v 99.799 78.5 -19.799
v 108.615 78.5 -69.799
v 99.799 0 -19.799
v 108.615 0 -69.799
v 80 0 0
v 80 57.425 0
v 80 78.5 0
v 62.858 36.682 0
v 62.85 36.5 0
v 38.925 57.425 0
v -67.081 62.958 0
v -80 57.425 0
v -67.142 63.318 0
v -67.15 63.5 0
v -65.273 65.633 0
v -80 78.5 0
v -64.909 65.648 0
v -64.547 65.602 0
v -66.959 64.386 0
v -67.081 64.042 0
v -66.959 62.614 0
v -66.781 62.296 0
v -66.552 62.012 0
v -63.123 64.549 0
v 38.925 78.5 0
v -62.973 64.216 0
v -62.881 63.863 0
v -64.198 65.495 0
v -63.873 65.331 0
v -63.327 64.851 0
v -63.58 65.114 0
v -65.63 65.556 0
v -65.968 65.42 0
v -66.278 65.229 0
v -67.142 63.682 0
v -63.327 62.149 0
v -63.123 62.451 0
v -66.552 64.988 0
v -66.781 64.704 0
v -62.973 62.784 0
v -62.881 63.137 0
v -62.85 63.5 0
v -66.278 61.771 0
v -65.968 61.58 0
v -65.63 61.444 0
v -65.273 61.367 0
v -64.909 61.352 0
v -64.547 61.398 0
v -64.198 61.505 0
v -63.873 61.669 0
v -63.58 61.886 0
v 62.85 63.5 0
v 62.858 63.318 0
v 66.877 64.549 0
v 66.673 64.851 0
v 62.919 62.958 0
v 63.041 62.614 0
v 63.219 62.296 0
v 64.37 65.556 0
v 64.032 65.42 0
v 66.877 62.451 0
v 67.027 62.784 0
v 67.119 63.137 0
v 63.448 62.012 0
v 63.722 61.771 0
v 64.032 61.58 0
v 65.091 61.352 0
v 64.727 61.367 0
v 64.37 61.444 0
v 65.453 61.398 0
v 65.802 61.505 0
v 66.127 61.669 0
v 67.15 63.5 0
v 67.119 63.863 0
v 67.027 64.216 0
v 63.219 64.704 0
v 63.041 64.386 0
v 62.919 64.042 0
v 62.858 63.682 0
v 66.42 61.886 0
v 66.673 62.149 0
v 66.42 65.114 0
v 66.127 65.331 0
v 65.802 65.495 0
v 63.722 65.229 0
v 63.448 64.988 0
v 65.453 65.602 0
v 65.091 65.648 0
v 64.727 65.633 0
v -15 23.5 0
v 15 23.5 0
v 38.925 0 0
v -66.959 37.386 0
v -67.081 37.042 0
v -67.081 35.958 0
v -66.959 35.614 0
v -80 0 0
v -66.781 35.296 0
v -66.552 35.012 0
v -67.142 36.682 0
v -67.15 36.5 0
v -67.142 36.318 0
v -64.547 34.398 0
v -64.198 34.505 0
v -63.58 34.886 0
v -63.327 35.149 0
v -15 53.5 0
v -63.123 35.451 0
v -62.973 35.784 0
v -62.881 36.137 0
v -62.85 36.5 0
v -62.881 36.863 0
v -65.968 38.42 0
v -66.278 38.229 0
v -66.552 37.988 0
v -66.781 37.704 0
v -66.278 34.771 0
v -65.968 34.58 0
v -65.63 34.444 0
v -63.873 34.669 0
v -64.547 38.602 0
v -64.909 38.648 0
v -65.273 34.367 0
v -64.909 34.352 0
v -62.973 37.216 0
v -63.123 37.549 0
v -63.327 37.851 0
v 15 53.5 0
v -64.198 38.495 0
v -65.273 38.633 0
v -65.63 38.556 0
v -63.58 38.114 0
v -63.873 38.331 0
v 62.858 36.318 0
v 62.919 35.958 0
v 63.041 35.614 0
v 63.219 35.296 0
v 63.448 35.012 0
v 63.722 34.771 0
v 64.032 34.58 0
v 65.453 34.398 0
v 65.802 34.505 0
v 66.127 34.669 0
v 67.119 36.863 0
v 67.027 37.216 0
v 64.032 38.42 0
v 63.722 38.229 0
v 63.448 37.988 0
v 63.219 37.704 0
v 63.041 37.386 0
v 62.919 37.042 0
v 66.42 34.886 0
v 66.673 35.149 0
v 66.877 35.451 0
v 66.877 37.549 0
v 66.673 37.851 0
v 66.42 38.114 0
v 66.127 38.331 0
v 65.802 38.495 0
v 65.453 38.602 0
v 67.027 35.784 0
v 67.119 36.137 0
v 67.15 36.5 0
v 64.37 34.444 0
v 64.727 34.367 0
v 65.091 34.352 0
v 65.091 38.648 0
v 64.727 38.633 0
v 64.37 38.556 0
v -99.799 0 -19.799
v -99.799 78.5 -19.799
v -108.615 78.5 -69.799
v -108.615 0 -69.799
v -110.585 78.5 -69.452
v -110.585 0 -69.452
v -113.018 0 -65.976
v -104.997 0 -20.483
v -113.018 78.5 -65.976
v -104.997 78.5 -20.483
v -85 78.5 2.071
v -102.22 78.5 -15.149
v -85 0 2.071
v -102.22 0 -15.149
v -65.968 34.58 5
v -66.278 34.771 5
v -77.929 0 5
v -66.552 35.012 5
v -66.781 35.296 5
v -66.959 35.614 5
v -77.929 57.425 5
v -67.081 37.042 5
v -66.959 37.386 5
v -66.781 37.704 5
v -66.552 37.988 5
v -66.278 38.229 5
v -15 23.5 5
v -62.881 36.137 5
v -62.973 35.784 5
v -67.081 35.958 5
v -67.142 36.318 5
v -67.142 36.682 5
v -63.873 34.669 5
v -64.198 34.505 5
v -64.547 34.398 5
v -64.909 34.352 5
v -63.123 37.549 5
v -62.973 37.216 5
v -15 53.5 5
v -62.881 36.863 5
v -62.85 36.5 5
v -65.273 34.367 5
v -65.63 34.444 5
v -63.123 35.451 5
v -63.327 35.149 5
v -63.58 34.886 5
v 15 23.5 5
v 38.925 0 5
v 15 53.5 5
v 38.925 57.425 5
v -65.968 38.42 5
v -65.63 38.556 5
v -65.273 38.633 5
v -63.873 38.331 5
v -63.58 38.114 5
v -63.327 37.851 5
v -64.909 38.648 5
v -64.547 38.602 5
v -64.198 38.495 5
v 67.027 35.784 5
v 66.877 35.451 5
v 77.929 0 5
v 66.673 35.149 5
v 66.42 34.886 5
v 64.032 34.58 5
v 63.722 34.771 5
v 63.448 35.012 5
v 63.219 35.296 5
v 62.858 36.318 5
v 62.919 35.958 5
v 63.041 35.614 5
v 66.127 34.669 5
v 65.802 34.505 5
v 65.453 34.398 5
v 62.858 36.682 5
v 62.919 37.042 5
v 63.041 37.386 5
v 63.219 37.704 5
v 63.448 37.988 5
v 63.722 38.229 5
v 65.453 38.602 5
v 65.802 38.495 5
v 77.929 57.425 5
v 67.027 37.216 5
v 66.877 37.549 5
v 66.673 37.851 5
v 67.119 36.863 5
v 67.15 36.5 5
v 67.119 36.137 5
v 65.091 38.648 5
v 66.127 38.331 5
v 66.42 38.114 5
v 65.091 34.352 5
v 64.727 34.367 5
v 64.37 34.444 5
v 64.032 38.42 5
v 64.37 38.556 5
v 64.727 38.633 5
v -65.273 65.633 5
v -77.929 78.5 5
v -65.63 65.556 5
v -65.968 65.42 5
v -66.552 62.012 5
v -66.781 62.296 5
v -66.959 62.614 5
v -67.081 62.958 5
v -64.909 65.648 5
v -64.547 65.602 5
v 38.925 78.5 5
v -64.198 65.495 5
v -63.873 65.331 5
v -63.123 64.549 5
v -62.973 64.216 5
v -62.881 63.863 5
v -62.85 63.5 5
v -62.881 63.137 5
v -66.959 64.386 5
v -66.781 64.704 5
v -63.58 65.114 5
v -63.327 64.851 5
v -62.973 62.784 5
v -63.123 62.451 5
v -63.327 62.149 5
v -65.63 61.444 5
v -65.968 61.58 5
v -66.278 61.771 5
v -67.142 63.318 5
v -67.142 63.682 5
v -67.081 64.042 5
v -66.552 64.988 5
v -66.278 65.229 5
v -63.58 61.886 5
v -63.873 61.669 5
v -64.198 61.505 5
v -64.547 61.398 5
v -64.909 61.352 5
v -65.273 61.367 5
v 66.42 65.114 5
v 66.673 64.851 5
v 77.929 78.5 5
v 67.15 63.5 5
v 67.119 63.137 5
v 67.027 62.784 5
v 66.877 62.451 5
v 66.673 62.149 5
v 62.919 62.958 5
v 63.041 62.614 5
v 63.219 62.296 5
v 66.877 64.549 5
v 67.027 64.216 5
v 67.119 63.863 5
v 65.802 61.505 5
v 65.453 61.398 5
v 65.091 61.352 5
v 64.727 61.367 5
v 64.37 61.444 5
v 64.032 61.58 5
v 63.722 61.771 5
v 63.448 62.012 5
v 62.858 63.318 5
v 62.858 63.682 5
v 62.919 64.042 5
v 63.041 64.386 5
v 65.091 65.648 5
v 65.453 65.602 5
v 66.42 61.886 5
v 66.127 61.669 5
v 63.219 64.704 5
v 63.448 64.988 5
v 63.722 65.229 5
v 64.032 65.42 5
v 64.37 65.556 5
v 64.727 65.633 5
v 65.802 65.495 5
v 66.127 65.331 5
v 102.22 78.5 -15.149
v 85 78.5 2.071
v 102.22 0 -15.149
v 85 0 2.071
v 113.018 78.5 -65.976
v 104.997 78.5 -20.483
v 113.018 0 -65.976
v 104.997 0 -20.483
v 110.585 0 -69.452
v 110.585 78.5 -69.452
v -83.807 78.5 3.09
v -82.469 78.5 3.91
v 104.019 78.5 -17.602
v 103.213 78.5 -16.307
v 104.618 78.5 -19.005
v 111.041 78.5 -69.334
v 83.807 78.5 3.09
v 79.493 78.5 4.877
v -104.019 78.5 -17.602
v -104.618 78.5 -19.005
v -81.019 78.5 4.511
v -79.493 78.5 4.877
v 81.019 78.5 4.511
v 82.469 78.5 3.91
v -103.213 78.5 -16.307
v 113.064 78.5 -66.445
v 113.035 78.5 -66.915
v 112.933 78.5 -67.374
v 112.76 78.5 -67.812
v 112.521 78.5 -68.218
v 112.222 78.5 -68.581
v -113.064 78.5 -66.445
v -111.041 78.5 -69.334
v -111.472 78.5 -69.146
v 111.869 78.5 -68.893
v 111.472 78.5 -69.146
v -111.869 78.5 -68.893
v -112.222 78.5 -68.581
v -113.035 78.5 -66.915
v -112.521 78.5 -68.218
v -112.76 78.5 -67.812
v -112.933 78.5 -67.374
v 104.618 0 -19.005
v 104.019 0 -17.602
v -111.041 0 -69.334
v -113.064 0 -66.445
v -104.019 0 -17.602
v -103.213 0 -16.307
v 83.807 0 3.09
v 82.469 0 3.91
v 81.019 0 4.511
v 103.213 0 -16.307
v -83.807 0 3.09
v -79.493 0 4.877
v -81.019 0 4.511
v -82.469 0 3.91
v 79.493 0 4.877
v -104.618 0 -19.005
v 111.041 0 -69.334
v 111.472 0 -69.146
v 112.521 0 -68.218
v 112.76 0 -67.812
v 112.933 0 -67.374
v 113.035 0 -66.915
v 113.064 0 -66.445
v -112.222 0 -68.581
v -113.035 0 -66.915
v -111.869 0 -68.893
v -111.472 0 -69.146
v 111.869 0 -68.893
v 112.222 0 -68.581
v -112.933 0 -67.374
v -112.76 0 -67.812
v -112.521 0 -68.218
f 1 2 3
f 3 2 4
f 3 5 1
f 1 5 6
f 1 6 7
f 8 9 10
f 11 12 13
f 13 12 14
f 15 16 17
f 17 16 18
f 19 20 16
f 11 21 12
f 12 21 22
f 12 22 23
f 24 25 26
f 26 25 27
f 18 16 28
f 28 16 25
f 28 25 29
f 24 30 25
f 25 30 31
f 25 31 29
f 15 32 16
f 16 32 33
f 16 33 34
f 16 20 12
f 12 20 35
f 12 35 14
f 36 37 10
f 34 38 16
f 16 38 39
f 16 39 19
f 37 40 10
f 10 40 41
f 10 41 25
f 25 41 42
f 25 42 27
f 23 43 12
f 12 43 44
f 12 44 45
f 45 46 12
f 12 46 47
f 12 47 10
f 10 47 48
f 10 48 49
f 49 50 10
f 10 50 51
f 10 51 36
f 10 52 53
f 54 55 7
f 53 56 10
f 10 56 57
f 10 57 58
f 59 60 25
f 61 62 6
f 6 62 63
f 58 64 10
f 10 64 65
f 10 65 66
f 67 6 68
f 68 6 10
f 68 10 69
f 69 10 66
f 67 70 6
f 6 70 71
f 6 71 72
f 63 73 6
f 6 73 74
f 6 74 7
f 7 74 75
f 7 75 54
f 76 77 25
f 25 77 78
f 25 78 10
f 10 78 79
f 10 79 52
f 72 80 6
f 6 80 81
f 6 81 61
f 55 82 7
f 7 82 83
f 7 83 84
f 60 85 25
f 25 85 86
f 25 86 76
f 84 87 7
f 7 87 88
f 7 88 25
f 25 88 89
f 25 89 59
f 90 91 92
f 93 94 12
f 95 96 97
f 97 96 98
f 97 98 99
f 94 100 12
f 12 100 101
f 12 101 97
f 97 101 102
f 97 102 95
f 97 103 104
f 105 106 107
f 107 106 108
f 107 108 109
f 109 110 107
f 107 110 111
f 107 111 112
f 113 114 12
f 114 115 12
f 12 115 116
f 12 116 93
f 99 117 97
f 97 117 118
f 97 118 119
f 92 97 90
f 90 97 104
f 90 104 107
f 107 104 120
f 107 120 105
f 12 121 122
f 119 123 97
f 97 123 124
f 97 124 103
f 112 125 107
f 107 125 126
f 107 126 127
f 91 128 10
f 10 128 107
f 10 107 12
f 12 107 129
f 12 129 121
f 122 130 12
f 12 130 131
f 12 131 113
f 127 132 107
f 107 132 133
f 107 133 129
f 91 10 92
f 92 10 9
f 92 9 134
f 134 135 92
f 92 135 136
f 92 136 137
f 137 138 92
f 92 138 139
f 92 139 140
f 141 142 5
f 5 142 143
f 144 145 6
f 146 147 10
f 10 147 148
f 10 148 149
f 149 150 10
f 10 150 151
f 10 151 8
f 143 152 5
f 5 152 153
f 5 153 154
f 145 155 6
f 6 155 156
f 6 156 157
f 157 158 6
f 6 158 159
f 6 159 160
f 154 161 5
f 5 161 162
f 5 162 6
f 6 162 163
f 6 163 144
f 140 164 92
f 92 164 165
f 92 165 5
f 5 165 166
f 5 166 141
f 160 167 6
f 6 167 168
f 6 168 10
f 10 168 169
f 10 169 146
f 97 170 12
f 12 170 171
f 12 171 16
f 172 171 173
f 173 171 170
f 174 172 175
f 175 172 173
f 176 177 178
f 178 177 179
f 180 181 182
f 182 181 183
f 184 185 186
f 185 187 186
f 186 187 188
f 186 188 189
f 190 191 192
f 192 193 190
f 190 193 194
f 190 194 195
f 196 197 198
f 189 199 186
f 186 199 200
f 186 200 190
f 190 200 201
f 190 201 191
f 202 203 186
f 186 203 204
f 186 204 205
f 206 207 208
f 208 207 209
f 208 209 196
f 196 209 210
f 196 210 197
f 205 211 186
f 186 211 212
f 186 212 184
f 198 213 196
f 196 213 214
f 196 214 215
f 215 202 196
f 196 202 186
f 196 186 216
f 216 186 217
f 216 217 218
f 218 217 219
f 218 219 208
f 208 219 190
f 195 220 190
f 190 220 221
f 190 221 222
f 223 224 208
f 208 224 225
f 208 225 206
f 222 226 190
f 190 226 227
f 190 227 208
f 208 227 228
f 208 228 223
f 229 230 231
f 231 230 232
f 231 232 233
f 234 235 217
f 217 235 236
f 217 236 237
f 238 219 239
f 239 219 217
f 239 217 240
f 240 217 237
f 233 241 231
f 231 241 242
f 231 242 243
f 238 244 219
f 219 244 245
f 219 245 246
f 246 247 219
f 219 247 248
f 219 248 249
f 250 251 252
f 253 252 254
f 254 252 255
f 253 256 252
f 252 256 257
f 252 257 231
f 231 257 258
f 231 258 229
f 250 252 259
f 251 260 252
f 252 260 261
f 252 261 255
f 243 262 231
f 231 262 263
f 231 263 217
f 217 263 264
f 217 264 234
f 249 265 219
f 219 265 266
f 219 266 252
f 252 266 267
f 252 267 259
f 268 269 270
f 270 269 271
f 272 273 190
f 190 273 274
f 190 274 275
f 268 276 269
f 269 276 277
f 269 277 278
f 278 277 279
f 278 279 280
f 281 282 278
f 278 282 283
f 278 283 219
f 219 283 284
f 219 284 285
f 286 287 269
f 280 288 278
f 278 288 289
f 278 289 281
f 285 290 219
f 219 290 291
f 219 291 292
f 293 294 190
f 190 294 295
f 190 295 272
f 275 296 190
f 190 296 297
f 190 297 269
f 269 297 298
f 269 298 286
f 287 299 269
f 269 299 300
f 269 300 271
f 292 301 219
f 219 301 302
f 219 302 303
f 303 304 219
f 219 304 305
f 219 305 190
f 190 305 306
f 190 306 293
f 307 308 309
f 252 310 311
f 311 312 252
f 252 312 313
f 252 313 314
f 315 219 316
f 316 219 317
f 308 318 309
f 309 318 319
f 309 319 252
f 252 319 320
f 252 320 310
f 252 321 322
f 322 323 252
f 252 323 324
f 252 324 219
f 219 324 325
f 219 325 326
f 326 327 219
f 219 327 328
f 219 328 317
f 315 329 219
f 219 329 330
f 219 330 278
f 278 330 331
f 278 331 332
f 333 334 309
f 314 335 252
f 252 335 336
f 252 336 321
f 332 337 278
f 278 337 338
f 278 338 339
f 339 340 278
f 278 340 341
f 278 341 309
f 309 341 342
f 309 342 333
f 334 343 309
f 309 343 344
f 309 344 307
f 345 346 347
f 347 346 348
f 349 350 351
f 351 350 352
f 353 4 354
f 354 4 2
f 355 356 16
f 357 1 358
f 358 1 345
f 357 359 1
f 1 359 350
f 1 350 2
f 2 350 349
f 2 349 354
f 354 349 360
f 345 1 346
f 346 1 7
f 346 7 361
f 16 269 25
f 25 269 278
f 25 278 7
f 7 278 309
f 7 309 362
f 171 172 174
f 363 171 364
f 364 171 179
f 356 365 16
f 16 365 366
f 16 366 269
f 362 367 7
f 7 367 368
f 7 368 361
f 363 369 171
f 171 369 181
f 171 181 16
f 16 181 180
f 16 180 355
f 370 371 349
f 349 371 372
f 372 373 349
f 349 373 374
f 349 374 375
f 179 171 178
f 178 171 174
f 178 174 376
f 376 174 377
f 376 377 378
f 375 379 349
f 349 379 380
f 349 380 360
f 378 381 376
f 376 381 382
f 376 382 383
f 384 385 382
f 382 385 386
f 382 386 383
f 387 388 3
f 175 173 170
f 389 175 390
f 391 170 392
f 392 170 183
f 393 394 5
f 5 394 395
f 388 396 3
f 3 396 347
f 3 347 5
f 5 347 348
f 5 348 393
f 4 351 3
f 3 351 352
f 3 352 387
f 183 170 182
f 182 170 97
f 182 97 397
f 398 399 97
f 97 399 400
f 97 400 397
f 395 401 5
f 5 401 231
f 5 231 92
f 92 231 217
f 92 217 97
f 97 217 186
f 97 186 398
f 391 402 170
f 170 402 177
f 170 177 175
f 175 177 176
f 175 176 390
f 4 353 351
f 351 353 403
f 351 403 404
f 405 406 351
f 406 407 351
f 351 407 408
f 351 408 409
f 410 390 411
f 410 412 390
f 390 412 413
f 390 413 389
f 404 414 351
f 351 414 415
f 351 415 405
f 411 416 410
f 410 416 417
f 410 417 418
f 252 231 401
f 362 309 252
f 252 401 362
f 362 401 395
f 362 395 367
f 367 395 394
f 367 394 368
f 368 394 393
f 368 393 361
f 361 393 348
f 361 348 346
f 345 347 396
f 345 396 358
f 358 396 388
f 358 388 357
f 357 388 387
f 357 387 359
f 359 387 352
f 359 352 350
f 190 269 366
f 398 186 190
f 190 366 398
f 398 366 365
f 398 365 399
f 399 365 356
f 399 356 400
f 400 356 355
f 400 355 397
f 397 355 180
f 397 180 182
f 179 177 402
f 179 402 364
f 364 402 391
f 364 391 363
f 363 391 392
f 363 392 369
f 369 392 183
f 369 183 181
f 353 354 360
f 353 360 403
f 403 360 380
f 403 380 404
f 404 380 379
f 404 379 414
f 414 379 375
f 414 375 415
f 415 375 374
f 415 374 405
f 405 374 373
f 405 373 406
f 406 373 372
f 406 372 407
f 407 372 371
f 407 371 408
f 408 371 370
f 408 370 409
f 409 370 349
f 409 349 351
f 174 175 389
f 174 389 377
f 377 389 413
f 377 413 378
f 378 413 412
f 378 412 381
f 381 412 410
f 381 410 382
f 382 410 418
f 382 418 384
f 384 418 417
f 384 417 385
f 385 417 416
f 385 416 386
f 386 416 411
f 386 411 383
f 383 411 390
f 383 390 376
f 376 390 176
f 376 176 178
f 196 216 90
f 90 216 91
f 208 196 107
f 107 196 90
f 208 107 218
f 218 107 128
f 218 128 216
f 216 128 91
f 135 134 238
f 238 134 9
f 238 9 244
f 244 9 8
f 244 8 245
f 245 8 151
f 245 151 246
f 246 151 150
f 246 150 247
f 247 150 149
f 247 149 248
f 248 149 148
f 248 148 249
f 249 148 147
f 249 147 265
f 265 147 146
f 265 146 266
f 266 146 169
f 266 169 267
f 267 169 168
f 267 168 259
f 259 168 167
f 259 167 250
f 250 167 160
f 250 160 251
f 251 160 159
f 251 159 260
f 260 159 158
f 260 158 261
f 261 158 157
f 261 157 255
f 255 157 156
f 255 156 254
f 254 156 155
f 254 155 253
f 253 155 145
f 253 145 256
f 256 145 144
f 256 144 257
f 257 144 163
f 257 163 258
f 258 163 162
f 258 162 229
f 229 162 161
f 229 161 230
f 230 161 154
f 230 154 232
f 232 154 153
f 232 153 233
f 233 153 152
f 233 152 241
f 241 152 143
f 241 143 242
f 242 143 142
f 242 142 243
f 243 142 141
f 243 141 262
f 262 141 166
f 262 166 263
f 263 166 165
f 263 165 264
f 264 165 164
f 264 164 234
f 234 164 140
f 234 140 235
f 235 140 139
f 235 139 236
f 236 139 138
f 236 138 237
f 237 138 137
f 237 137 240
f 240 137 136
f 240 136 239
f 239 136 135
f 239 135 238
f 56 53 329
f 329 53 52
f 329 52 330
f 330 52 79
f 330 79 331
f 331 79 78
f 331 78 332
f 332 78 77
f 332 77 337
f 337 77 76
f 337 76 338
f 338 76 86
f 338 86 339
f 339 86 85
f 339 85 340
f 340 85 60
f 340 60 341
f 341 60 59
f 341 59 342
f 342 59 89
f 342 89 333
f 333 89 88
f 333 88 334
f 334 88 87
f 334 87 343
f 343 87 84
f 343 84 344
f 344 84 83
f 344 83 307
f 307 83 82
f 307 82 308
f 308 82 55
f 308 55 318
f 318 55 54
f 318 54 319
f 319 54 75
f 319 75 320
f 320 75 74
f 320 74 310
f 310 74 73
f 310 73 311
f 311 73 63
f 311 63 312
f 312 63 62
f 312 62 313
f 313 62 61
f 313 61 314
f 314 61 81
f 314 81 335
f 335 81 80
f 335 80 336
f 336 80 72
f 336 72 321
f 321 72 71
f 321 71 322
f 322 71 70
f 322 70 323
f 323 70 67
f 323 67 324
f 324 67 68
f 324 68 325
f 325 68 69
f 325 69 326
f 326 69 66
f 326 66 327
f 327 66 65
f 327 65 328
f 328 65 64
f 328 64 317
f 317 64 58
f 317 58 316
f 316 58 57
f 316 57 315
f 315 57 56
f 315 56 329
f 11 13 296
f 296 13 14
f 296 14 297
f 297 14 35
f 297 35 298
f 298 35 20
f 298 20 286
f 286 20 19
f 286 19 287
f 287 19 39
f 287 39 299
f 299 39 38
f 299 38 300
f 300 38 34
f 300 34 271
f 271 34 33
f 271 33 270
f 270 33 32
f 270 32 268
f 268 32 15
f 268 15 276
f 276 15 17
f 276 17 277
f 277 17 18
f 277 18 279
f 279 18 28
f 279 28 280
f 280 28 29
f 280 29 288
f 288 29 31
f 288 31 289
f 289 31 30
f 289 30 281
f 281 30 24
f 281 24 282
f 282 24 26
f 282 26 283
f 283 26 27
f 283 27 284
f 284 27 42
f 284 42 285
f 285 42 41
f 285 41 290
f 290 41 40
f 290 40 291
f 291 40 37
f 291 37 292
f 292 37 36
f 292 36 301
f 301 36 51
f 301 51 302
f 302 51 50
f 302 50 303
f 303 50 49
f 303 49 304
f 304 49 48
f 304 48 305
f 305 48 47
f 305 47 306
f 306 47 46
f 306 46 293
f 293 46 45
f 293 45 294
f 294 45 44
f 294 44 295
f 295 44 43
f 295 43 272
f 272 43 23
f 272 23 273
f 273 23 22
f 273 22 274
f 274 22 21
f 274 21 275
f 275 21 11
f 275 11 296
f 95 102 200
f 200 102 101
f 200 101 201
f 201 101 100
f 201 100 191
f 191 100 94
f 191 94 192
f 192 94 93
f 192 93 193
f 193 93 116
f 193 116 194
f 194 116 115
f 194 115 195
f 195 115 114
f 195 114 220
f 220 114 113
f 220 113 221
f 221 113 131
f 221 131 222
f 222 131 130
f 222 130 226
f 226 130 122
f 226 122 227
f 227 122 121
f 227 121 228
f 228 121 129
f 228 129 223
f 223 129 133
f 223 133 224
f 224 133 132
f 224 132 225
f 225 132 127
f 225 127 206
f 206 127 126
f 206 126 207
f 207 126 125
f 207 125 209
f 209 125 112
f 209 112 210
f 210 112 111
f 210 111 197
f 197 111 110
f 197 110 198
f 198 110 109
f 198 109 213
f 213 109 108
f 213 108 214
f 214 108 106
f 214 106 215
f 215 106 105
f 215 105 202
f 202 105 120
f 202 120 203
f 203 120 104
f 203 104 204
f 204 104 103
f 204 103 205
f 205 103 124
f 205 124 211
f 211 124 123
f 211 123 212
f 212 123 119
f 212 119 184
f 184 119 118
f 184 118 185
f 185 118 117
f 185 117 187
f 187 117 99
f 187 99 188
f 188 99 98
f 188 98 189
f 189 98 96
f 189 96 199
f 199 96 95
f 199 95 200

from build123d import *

# Parameters (mm, degrees)
BOSS_EXTRUDE1_DEPTH = 78.5
FILLET1_R           = 10
FILLET2_R           = 10
FILLET12_R          = 10
FILLET13_R          = 3
SKETCH2_W           = 30
SKETCH2_H           = 30
CUT_EXTRUDE1_DEPTH  = 78.5
SKETCH4_R           = 2.15
CUT_EXTRUDE2_DEPTH  = 78.5


with BuildPart() as part:
    # Sketch1 → Boss-Extrude1 (new body)
    with BuildSketch(Plane(origin=(0, 0, 0), x_dir=(1, 0, 0), z_dir=(0, 1, 0))):
        Polygon((-80, 0), (80, 0), (99.798989873, 19.798989873), (108.615338909, 69.798989873), (113.539377674, 68.930748985), (104.449273338, 17.378205526), (82.071067812, -5), (-82.071067812, -5), (-104.449273338, 17.378205526), (-113.539377674, 68.930748985), (-108.615338909, 69.798989873), (-99.798989873, 19.798989873), align=None)
    extrude(amount=BOSS_EXTRUDE1_DEPTH)

    # Fillet1
    fillet1_edges = [part.edges().sort_by_distance(p)[0] for p in [
        (82.071067812, 39.25, 5),
    ]]
    fillet(fillet1_edges, radius=FILLET1_R)

    # Fillet2
    fillet2_edges = [part.edges().sort_by_distance(p)[0] for p in [
        (104.449273338, 39.25, -17.378205526),
    ]]
    fillet(fillet2_edges, radius=FILLET2_R)

    # Fillet12
    fillet12_edges = [part.edges().sort_by_distance(p)[0] for p in [
        (-104.449273338, 39.25, -17.378205526),
        (-82.071067812, 39.25, 5),
    ]]
    fillet(fillet12_edges, radius=FILLET12_R)

    # Fillet13
    fillet13_edges = [part.edges().sort_by_distance(p)[0] for p in [
        (-113.539377674, 39.25, -68.930748985),
        (113.539377674, 39.25, -68.930748985),
    ]]
    fillet(fillet13_edges, radius=FILLET13_R)

    # Sketch2 → Cut-Extrude1 (cut)
    with BuildSketch(Plane.XY.offset(5)):
        with Locations((0, 38.5)):
            Rectangle(SKETCH2_W, SKETCH2_H)
    extrude(amount=-CUT_EXTRUDE1_DEPTH, mode=Mode.SUBTRACT)

    # Sketch4 → Cut-Extrude2 (cut)
    with BuildSketch(Plane.XY.offset(5)):
        with Locations((65, 36.5)):
            Circle(SKETCH4_R)
        with Locations((65, 63.5)):
            Circle(SKETCH4_R)
        with Locations((-65, 63.5)):
            Circle(SKETCH4_R)
        with Locations((-65, 36.5)):
            Circle(SKETCH4_R)
    extrude(amount=-CUT_EXTRUDE2_DEPTH, mode=Mode.SUBTRACT)


solid = part.part
